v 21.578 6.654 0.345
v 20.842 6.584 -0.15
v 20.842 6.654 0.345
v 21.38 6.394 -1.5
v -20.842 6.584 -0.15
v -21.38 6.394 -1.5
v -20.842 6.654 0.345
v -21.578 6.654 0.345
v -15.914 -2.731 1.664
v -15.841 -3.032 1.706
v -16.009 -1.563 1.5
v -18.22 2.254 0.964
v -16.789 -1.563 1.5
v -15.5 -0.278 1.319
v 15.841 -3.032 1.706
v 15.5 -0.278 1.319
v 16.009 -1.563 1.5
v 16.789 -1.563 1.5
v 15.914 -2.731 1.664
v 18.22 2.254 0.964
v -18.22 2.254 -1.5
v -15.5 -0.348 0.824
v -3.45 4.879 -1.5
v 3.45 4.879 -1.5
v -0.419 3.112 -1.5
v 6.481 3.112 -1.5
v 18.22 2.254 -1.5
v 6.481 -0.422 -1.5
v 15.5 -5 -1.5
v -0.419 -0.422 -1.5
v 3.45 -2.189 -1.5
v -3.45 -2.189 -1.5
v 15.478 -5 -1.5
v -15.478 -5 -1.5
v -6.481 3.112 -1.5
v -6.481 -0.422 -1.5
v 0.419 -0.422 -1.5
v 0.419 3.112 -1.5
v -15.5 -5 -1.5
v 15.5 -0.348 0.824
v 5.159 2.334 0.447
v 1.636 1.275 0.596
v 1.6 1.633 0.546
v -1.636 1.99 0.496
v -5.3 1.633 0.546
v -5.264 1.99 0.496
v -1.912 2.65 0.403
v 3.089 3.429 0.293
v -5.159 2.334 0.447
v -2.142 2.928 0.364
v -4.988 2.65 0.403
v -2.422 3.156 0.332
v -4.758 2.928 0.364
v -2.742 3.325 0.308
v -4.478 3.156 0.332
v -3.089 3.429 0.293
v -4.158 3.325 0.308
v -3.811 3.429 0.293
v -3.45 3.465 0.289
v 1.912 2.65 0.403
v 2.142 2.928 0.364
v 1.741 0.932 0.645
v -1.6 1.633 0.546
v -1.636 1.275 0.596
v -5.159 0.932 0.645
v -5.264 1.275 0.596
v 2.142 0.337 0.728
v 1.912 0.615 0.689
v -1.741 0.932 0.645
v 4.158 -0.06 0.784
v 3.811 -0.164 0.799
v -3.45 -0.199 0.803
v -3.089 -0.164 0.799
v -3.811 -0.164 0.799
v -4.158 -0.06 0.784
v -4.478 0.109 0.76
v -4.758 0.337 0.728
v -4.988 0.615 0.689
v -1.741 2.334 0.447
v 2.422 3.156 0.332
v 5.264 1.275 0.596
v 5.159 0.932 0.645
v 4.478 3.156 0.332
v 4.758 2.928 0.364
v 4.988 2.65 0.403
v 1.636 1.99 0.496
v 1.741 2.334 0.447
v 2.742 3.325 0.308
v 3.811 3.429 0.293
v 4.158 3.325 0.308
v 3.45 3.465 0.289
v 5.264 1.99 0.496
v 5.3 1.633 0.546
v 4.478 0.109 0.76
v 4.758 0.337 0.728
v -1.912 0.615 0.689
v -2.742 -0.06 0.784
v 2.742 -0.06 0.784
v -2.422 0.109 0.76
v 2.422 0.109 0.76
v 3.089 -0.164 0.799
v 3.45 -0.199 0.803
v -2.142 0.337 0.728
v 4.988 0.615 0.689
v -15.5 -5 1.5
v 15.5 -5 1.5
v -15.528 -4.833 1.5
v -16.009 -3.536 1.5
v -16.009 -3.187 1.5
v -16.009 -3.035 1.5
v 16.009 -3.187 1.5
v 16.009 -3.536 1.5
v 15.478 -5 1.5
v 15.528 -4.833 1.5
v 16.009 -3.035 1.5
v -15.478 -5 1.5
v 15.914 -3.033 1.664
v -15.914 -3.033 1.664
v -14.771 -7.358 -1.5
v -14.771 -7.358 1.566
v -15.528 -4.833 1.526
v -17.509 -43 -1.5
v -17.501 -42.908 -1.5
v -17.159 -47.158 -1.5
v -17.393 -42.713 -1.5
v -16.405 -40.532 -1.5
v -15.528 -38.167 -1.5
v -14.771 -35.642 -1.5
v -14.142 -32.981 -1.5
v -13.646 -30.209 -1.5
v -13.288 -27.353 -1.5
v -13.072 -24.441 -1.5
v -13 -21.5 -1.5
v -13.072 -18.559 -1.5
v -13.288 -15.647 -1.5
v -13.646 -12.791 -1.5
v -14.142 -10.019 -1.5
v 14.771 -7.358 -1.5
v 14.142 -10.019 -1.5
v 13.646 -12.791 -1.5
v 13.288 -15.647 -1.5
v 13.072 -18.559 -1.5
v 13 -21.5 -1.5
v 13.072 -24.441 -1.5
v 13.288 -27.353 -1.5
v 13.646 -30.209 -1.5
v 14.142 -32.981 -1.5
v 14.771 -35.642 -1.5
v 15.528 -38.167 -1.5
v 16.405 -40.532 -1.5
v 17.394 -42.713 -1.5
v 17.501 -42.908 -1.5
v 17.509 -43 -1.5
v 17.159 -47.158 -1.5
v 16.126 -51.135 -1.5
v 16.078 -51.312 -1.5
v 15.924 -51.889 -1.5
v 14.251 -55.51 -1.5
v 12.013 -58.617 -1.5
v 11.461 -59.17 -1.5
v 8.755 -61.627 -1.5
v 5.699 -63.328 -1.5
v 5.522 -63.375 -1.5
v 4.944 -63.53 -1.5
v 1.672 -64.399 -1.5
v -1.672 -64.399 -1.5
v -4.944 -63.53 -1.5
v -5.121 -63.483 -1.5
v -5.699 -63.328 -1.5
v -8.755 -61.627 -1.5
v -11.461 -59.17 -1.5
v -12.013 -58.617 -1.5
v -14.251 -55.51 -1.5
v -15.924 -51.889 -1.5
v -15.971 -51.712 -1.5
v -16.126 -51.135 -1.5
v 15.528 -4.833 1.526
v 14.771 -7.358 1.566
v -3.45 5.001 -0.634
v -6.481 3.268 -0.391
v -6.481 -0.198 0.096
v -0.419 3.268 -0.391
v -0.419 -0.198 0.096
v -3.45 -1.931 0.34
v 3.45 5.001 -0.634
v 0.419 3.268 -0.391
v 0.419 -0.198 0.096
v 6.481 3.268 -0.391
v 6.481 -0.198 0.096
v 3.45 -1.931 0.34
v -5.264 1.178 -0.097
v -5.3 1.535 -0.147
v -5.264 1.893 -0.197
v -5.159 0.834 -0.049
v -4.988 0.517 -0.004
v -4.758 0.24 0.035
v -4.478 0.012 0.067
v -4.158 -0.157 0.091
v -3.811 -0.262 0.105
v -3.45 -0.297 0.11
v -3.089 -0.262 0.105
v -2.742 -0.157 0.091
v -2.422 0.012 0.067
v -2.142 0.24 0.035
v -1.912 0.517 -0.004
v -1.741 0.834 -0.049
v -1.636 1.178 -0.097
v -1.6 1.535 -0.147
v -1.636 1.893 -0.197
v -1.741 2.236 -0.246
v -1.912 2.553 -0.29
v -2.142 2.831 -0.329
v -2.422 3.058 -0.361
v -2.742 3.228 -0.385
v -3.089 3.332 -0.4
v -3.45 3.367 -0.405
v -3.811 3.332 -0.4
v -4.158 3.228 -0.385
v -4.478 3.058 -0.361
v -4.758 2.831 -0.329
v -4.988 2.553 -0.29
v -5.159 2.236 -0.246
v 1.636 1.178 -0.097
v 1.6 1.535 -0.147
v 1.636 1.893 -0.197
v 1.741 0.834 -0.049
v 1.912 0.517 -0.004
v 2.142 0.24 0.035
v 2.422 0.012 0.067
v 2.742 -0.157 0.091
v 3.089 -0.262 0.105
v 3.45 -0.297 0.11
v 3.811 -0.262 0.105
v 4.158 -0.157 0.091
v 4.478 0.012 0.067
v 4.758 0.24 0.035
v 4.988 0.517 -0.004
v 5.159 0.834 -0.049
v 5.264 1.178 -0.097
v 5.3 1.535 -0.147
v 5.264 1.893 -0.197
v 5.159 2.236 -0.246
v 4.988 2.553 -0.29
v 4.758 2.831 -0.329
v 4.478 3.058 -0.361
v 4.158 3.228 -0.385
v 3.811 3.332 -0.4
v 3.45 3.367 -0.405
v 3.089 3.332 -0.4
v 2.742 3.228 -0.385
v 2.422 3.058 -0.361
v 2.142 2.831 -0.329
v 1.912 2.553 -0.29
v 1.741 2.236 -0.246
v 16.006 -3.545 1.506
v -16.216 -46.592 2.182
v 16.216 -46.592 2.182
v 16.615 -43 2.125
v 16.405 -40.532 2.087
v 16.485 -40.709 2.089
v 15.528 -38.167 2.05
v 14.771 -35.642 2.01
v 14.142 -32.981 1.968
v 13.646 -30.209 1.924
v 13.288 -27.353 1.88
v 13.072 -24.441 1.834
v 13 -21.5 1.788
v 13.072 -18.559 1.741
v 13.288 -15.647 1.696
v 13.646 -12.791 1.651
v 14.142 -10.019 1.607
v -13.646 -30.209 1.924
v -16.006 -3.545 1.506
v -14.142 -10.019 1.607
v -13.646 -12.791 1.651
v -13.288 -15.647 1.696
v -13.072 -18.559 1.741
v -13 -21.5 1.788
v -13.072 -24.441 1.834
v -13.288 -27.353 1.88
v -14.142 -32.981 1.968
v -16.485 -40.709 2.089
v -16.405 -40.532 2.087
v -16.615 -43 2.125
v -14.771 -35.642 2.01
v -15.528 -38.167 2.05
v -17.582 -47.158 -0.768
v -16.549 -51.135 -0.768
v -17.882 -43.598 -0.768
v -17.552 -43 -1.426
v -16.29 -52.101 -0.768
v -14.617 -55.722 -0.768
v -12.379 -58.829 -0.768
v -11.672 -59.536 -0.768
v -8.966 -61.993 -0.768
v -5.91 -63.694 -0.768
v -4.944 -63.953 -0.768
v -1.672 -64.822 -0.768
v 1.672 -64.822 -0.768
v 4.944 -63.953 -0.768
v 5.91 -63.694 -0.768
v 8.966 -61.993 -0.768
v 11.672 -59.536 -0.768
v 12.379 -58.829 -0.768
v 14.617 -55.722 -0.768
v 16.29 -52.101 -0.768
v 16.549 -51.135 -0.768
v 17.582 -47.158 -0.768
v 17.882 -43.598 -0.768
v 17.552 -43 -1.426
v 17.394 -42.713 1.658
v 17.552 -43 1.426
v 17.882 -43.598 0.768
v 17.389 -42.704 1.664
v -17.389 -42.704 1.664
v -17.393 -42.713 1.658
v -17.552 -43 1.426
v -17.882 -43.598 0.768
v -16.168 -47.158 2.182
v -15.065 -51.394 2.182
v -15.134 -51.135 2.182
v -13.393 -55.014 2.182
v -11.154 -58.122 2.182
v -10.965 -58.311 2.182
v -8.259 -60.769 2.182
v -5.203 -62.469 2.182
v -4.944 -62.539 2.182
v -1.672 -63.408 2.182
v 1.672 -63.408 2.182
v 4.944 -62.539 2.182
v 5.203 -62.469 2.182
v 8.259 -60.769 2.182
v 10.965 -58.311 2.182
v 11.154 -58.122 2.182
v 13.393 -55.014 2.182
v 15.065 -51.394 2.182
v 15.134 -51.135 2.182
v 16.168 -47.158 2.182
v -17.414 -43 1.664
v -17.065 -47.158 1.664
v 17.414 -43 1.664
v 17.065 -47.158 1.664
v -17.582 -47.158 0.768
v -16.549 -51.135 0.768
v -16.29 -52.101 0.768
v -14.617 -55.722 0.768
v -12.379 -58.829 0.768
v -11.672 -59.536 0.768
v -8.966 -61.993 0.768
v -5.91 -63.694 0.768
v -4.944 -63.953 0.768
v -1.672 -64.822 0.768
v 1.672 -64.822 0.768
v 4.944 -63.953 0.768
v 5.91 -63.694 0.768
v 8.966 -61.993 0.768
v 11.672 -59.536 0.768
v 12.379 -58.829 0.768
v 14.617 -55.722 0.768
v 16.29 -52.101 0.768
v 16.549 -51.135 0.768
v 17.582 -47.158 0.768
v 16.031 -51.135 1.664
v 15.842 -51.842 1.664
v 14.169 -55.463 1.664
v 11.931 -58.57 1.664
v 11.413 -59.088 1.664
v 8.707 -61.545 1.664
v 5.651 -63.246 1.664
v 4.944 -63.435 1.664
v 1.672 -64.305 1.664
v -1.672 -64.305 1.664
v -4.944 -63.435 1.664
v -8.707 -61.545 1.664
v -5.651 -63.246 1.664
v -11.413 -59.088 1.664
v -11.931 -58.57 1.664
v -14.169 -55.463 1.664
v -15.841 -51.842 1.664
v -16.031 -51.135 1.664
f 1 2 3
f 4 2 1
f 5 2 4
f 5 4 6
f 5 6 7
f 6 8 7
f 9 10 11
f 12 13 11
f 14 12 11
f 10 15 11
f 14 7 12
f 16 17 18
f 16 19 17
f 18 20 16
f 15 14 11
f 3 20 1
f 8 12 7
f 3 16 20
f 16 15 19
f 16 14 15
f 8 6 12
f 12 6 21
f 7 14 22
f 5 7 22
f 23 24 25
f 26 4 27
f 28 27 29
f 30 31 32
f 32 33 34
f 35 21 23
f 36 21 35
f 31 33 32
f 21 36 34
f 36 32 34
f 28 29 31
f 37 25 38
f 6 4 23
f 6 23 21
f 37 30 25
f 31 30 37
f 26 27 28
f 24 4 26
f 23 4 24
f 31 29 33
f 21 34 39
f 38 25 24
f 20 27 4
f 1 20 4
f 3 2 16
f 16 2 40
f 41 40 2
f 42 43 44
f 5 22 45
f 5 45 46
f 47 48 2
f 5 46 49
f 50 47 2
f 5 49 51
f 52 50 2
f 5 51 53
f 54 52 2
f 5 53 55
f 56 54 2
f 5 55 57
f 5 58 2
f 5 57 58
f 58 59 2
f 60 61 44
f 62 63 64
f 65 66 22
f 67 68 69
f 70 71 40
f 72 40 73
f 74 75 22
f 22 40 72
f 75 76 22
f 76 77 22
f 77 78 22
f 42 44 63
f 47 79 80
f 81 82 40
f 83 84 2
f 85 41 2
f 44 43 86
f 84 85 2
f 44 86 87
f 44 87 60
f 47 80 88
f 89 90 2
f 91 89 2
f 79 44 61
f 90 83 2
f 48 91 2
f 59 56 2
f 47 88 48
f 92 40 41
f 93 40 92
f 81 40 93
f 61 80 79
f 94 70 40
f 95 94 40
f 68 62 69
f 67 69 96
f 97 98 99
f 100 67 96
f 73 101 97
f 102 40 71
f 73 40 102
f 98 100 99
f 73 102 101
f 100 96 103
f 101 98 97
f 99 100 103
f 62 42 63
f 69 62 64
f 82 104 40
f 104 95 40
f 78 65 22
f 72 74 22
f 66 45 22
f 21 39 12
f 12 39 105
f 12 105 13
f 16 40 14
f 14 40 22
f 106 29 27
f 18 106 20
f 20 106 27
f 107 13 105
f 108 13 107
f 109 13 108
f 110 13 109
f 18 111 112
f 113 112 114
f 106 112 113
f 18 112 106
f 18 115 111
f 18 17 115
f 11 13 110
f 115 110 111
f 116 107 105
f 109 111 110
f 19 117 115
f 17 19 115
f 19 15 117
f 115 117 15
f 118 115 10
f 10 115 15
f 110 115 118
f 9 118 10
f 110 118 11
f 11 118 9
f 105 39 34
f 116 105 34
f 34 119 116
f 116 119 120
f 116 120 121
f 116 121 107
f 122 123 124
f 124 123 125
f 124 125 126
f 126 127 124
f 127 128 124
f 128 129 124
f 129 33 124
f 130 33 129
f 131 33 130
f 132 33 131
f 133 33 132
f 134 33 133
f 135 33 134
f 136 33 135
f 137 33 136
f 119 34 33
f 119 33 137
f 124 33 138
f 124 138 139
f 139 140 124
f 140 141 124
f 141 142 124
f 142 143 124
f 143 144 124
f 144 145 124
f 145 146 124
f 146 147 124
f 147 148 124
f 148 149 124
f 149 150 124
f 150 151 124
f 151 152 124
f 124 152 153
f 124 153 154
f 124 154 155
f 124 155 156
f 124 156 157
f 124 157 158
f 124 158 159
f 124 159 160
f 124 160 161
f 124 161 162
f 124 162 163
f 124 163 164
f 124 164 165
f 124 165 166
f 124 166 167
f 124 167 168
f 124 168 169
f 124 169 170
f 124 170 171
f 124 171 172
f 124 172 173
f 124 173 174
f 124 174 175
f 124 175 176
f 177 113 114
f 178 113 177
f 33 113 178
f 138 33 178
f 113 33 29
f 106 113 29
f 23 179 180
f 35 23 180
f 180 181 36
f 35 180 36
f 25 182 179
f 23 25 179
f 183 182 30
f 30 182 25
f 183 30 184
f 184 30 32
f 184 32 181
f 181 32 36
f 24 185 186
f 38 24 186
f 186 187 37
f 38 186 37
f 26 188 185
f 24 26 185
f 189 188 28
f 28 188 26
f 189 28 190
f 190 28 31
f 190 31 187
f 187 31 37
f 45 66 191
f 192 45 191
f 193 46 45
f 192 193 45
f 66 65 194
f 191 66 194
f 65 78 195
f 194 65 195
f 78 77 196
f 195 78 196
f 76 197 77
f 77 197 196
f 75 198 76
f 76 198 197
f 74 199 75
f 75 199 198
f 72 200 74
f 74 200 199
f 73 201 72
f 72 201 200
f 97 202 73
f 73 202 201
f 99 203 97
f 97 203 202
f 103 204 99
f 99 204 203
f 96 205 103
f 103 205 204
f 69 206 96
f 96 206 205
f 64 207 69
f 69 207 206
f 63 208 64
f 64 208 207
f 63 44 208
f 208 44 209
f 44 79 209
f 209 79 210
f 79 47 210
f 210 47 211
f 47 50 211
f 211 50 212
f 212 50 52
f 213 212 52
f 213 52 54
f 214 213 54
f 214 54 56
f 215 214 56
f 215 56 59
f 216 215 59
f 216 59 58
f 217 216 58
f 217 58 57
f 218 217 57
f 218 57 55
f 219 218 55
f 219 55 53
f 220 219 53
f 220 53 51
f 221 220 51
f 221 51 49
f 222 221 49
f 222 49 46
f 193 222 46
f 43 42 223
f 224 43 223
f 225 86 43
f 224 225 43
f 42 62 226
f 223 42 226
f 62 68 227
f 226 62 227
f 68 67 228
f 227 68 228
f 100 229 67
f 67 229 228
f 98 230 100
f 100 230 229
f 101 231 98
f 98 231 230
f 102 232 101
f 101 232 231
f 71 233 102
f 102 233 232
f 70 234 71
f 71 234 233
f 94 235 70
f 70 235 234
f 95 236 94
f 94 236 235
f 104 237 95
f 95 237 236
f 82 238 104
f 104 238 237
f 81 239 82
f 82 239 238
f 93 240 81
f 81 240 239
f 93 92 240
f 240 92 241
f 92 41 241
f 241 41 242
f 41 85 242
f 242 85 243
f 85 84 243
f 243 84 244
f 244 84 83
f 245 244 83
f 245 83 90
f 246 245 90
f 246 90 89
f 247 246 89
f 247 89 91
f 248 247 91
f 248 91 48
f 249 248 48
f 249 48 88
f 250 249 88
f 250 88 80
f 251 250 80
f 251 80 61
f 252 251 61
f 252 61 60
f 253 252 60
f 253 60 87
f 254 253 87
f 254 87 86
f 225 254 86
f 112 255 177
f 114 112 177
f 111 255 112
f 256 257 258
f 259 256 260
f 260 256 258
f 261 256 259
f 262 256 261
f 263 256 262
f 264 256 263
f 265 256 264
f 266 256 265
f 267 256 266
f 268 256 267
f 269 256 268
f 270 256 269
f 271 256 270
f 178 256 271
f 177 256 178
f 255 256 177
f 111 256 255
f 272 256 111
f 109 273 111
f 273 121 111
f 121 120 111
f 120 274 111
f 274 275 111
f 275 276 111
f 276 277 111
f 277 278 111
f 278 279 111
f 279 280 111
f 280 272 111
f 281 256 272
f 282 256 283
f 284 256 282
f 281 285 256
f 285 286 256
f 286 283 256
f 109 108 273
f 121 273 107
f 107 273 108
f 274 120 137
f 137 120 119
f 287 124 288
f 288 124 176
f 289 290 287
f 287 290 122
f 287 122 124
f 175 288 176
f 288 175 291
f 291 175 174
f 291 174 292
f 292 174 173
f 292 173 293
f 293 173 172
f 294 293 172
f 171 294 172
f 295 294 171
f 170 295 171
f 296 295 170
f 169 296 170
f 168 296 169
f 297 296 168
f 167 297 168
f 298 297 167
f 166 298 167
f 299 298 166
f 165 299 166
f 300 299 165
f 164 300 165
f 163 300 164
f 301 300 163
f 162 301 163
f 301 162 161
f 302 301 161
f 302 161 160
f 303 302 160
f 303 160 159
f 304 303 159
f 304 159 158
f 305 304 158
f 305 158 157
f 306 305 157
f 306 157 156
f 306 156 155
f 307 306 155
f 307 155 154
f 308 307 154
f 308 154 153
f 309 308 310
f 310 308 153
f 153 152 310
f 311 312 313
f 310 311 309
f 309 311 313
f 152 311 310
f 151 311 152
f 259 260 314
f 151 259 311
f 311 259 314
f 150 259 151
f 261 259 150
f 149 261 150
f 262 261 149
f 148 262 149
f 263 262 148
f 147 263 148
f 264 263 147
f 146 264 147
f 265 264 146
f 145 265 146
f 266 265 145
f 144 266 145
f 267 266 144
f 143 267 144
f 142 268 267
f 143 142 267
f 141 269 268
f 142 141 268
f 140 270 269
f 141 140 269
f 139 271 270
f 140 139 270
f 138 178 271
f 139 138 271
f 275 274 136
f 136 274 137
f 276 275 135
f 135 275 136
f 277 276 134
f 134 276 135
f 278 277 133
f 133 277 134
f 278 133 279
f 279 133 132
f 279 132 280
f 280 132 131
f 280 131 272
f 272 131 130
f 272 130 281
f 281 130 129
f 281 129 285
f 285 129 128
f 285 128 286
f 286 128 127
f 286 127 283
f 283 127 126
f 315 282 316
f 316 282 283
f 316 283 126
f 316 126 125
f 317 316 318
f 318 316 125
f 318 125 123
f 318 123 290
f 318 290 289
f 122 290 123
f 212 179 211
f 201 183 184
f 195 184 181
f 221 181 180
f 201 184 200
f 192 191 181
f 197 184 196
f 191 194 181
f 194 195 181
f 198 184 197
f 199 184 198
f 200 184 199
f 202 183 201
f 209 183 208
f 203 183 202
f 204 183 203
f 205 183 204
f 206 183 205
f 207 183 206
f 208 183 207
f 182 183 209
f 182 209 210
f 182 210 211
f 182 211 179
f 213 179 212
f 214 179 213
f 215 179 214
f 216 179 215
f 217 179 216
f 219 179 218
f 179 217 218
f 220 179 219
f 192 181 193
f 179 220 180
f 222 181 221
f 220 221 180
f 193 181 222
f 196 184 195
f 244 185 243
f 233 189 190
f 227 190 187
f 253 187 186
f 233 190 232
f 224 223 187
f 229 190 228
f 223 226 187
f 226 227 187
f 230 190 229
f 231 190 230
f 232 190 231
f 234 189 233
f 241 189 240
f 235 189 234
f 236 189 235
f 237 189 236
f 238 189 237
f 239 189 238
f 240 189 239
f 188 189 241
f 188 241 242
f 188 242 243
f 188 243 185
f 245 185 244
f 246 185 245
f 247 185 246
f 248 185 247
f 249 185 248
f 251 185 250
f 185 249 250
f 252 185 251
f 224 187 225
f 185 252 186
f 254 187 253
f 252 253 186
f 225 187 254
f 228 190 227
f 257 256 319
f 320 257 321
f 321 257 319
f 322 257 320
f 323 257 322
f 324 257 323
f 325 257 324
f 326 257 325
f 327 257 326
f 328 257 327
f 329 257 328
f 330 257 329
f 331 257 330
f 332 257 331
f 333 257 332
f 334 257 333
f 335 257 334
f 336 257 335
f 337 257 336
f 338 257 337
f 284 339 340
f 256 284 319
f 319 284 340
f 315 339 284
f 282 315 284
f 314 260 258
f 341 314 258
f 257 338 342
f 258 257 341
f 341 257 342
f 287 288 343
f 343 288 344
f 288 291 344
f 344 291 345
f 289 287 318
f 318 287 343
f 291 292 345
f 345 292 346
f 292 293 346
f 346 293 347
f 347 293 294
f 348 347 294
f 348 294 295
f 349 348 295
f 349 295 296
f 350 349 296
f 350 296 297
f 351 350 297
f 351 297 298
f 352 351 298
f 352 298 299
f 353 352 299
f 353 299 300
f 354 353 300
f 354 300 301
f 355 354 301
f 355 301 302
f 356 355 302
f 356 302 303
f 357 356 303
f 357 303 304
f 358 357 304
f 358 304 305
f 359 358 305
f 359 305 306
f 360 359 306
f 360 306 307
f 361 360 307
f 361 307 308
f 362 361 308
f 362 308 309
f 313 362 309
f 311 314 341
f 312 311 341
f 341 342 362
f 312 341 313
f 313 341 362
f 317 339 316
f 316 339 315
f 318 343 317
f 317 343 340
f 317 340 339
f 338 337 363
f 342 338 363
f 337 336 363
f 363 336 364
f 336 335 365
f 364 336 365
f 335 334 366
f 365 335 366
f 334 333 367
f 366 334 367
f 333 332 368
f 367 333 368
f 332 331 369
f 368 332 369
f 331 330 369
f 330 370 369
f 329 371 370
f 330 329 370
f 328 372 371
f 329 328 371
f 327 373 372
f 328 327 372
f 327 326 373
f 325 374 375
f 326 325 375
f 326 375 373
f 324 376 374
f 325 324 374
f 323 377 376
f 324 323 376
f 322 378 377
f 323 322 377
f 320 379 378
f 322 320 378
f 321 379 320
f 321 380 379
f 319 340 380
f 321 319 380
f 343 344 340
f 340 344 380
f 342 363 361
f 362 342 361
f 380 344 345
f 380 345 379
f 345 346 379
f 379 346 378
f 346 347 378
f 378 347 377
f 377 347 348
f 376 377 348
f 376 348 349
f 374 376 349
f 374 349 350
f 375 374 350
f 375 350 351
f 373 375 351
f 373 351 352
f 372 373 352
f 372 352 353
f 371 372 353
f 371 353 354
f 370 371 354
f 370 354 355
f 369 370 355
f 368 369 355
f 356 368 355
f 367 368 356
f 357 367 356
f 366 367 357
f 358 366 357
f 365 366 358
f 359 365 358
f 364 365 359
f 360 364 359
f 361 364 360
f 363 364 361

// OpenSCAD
// 31mm top
//  * 10mm - 4mm (hole) - 3mm - 4mm (hole) - 10mm
// 60mm bottom (edge side)
// 19mm bottom to top

module tetragon(p1, p2, p3, p4, h=1) {
    linear_extrude(height=h,center=true) {
        polygon(
            points=[p1, p2, p3, p4],
            paths=[[0,1,2,3]]
        );
    }
}

//%cube([10,10,2],center=true);
difference() {
	// Same shape as the blade:
	union() {
		// tetragon([-31/2,0],[31/2,0],[60/2,19],[-60/2,19], 3);
		tetragon([-33/2,0],[33/2,0],[62/2,19],[-62/2,19], 3);
		// Blade connection piece
		translate([0,-5,0])
			tetragon([-31/2,0],[31/2,0],[38.5/2,10],[-38.5/2,10], 3);
		// Handle
		difference() {
			translate([0,-35,0]) {
				difference() {
					// Rounded handle
					minkowski() {
						union() {
							translate([0,15,0])
								cube([29,45,0.5],center=true);
							translate([0,-8,0])
								scale([0.8,1,1])
									cylinder(r=20,h=0.5,center=true);
						}
						sphere(r=2,$fn=12);
					}
					// Carve top
					translate([0,0,4])
						rotate([-0.9,0,0])
							cube([35,64,4],center=true);
					// Carve oval left
					translate([28,13.5,-2.5])
						scale([0.5,1,1])
							linear_extrude(height=10)
								circle(r=30,$fn=64);
					// Carve oval right
					translate([-28,13.5,-2.5])
						scale([0.5,1,1])
							linear_extrude(height=10)
								circle(r=30,$fn=64);
				}
			}
			translate([0,-25,-5-1.5])
				cube([100,100,10],center=true);
		}
	}


	translate([0,0,3.3]) {
		// Make the blade angle downward toward the surface
		rotate([-8,0,0]) {
			cube([60,60,4],center=true);

			// Make room for the blade to be inserted
			translate([0,0,-1.5])
				tetragon([-31/2,0],[31/2,0],[60/2,19],[-60/2,19], 2);

				//%cube([60,20,0.5],center=true);

			// Also cut the blade holder in half (so that half the blade protrudes)
			translate([0,-14.5+27+19/2,0])
				cube([62,30,10],center=true);
			
			// Right-hand hole
			translate([3.45,2,0]) {
				cylinder(r=1.85,h=15,center=true, $fn=32);
				// With space for a nut on the back
				translate([0,0,-4.7])
					rotate([0,0,30])
						cylinder(r=3.5,h=3,center=true, $fn=6);
			}

			// Left-hand hole
			translate([-3.45,2,0]) {
				cylinder(r=1.85,h=15,center=true, $fn=32);
				// With space for a nut on the back
				translate([0,0,-4.7])
					rotate([0,0,30])
						cylinder(r=3.5,h=3,center=true, $fn=6);
			}
		}
	}
}
